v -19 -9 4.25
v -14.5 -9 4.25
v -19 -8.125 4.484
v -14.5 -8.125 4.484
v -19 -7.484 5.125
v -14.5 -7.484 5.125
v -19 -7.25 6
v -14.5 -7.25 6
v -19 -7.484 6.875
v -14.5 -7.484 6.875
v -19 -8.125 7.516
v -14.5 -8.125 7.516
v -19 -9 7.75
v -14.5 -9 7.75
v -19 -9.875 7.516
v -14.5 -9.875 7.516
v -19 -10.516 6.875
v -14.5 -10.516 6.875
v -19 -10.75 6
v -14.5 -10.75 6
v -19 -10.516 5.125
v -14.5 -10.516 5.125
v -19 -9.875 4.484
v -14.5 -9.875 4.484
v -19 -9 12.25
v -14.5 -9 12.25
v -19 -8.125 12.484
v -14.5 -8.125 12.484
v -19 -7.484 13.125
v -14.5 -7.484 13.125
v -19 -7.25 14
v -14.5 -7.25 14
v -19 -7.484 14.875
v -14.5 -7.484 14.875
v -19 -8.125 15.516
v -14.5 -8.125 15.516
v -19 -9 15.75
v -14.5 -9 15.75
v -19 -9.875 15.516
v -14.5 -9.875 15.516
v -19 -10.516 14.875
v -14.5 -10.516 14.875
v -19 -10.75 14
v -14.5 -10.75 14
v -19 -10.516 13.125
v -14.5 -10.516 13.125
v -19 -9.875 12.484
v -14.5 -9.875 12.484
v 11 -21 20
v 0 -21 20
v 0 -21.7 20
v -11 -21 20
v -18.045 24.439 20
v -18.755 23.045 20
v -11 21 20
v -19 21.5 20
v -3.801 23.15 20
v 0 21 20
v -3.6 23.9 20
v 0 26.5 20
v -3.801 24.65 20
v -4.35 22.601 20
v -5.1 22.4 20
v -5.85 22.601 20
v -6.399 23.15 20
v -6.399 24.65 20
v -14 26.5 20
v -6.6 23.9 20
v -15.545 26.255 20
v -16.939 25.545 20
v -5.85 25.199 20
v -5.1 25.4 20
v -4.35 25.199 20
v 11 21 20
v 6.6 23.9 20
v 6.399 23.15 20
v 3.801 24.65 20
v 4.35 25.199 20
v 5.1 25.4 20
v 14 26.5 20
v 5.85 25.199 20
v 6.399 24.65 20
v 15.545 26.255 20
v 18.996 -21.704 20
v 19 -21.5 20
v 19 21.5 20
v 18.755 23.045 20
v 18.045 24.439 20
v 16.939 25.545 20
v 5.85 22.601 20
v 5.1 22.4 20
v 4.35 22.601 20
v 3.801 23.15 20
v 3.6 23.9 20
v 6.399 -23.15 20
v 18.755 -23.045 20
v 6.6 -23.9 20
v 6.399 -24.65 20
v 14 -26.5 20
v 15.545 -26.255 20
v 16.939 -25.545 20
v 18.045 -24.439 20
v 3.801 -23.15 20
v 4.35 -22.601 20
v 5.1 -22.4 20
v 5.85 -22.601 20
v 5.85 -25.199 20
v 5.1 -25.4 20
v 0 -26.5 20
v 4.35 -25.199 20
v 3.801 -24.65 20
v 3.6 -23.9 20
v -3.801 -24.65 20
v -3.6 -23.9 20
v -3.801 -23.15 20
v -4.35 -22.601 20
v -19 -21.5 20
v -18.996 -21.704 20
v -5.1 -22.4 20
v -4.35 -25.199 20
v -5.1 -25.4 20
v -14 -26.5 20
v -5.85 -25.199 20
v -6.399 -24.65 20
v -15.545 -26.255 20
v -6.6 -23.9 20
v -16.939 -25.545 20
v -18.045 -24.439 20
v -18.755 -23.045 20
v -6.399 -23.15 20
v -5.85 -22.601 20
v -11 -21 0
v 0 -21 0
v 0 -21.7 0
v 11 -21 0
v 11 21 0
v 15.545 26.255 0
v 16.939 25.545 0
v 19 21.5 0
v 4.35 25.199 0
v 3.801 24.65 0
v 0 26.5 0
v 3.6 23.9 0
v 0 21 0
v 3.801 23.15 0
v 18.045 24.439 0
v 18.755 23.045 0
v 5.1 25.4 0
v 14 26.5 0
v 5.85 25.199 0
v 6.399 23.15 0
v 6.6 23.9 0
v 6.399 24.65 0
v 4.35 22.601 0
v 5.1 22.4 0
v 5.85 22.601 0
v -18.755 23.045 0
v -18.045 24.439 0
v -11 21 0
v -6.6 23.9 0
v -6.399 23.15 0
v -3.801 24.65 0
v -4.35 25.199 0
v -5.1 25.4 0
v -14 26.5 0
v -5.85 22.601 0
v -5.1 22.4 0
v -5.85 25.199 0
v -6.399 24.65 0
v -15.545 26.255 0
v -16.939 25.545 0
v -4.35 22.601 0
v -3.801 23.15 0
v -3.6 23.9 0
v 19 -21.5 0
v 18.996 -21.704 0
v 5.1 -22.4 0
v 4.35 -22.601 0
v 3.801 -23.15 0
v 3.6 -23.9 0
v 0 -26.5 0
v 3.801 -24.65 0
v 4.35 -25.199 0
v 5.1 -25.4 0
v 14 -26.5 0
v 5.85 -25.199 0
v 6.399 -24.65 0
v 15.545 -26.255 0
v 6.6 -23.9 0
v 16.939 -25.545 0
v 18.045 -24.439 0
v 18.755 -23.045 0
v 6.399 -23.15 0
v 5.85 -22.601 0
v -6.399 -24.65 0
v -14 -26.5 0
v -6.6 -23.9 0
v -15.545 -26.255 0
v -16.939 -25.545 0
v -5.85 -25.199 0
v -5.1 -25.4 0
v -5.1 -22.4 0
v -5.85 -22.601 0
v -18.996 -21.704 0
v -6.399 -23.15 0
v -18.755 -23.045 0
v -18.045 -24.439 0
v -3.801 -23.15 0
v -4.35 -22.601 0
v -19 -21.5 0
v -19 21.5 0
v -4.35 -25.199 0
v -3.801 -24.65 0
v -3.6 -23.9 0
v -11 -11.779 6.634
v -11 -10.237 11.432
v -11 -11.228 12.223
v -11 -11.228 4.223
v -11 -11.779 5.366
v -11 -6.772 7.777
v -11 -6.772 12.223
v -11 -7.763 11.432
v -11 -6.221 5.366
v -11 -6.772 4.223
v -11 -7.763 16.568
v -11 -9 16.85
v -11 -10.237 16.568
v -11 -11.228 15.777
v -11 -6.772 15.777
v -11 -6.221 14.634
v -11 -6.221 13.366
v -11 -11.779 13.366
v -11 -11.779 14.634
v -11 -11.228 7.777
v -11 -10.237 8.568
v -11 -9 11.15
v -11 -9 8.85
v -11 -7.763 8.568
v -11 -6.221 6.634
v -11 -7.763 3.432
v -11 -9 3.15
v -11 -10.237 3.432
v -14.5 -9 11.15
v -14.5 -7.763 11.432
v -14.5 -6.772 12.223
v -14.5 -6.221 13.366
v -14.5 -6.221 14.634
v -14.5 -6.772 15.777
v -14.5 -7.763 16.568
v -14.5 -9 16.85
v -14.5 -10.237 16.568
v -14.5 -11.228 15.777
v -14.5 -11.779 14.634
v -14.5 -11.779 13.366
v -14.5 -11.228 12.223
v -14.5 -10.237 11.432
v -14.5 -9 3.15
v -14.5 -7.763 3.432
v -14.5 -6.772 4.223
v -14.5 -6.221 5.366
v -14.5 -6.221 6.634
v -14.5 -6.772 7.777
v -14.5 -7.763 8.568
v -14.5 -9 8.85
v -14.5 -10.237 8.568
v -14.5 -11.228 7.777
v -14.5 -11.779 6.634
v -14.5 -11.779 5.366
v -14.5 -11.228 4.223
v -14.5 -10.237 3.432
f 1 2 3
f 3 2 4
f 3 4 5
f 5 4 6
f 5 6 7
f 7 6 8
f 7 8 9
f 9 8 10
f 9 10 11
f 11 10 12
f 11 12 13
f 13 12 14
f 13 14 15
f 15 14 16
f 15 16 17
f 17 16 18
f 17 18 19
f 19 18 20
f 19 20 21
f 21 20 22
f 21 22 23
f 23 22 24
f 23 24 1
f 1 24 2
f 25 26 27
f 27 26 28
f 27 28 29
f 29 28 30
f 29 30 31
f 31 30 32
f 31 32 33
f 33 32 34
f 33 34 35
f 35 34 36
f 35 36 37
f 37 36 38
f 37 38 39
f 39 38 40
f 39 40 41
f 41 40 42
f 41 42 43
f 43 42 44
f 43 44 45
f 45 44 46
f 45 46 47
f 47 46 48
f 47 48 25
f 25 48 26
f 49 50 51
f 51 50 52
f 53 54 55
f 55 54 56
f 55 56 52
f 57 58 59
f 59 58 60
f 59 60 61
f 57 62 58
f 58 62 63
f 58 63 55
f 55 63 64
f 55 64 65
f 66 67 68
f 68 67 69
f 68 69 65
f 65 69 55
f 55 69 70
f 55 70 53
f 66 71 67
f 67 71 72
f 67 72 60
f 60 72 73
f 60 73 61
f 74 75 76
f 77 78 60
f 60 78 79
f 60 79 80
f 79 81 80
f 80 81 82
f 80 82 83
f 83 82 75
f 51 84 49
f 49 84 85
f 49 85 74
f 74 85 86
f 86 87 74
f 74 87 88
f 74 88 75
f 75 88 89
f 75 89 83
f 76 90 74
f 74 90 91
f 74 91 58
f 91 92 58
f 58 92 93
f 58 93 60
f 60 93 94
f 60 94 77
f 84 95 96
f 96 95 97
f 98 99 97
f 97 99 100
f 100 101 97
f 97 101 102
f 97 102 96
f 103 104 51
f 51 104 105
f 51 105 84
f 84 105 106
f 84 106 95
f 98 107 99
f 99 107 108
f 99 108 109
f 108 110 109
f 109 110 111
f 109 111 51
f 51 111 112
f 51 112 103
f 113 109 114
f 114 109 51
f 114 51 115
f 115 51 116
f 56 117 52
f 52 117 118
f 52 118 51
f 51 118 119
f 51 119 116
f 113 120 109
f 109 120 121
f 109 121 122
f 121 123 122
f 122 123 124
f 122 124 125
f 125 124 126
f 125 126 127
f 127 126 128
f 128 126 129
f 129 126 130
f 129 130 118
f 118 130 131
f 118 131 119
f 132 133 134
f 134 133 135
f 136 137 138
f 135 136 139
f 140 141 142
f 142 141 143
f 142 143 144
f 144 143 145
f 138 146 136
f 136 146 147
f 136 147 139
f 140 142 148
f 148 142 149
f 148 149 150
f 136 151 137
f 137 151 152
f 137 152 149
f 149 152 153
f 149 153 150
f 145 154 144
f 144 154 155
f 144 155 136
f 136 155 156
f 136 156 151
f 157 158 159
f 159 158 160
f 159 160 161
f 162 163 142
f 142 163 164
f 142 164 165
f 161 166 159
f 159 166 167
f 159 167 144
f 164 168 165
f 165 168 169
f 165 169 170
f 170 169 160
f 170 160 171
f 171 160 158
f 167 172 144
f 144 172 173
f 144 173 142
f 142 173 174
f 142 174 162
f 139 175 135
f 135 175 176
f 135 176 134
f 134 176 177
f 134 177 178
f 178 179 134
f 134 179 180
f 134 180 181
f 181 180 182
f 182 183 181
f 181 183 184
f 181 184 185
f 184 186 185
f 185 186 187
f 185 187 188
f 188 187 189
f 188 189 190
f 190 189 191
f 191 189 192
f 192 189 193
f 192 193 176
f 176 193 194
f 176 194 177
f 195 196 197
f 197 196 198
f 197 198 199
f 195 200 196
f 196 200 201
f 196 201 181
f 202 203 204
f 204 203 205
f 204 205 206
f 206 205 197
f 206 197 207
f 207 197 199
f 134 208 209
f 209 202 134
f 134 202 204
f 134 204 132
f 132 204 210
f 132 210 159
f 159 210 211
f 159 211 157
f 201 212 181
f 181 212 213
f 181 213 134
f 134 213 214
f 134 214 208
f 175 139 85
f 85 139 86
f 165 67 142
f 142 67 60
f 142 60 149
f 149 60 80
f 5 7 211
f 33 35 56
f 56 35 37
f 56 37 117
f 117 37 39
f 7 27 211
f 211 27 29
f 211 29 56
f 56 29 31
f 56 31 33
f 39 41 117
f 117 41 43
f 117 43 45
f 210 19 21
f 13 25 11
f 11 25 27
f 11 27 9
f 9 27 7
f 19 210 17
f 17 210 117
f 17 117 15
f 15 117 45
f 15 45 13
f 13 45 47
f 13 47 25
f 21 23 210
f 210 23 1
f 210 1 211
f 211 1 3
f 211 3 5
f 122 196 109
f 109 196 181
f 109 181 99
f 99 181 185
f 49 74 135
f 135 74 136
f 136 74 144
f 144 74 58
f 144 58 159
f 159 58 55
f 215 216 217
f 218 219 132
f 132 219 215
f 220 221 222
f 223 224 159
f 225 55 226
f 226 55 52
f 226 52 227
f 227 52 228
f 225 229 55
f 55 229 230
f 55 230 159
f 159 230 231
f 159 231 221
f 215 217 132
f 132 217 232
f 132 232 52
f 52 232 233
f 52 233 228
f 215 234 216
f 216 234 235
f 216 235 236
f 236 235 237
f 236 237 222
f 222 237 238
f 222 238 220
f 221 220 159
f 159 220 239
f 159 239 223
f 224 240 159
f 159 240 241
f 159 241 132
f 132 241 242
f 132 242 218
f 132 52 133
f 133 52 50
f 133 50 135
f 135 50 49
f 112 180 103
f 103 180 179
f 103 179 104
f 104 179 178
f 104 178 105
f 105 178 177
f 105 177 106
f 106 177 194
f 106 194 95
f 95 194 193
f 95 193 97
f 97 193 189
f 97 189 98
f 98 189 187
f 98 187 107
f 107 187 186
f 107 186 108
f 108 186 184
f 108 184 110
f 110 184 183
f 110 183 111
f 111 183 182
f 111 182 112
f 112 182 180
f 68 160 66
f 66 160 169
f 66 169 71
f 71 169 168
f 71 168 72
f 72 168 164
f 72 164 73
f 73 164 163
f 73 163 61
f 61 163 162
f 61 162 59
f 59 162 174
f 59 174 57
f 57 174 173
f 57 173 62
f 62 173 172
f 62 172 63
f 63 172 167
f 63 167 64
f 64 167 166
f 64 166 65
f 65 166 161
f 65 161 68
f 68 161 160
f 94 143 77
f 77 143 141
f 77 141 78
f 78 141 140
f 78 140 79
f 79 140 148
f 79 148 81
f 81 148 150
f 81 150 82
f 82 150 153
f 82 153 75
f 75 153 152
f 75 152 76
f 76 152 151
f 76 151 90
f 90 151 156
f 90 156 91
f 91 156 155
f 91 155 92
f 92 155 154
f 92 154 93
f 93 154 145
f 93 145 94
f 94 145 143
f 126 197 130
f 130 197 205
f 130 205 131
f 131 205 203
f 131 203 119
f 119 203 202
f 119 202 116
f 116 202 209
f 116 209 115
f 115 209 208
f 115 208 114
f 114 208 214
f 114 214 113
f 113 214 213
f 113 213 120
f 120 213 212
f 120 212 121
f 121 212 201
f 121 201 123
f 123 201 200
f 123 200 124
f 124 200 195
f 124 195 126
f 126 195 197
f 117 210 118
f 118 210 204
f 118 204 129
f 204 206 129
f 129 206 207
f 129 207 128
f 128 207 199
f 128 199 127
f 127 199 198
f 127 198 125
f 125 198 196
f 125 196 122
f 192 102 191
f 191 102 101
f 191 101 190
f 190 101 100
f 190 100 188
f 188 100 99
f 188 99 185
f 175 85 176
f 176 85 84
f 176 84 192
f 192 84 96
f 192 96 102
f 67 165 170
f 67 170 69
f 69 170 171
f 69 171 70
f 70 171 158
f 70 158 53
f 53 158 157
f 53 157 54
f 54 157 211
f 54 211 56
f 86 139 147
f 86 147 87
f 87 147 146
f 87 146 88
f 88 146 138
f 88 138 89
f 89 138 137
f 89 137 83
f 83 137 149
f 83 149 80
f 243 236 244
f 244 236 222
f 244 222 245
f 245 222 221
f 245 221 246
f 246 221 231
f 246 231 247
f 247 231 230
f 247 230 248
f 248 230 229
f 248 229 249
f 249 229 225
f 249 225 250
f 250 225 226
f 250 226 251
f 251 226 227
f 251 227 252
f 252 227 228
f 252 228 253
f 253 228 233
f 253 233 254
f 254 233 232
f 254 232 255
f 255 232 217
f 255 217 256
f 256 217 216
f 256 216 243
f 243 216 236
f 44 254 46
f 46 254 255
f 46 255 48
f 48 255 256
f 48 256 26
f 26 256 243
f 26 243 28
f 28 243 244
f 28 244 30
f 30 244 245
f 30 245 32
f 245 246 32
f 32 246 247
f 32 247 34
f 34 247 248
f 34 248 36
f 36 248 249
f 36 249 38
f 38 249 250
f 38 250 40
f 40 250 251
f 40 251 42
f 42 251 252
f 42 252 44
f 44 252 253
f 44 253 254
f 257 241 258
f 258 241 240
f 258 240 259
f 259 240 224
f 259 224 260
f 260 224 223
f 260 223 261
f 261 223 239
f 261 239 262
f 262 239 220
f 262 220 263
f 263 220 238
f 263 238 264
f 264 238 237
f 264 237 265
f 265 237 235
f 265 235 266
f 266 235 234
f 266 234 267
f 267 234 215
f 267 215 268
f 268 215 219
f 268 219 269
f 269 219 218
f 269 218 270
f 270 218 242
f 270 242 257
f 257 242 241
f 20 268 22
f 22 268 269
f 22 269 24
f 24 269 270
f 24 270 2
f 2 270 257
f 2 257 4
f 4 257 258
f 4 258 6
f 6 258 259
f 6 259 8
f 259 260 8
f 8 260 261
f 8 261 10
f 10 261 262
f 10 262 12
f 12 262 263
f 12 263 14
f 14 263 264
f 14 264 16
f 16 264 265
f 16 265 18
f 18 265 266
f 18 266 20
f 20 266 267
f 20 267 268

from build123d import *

# Parameters (mm, degrees)
SKETCH1_W           = 38
SKETCH1_H           = 53
SKETCH1_W_2         = 22
SKETCH1_H_2         = 42
BOSS_EXTRUDE1_DEPTH = 20
SKETCH4_R           = 1.5
CUT_EXTRUDE3_DEPTH  = 39.252450902
FILLET1_R           = 5
SKETCH5_R           = 1.75
CUT_EXTRUDE4_DEPTH  = 45.746508244
SKETCH5_3_R         = 2.85
SKETCH5_3_R_2       = 1.75
CUT_EXTRUDE5_DEPTH  = 3.5


with BuildPart() as part:
    # Sketch1 → Boss-Extrude1 (new body)
    with BuildSketch(Plane.XY):
        Rectangle(SKETCH1_W, SKETCH1_H)
        Rectangle(SKETCH1_W_2, SKETCH1_H_2, mode=Mode.SUBTRACT)
    extrude(amount=BOSS_EXTRUDE1_DEPTH)

    # Sketch4 → Cut-Extrude3 (cut, through all)
    with BuildSketch(Plane(origin=(0, 0, 0), x_dir=(-1, 0, 0), z_dir=(0, 0, -1))):
        with Locations((-5.1, -23.9)):
            Circle(SKETCH4_R)
        with Locations((5.1, -23.9)):
            Circle(SKETCH4_R)
        with Locations((-5.1, 23.9)):
            Circle(SKETCH4_R)
        with Locations((5.1, 23.9)):
            Circle(SKETCH4_R)
    extrude(amount=-CUT_EXTRUDE3_DEPTH, mode=Mode.SUBTRACT)

    # Fillet1
    fillet1_edges = [part.edges().sort_by_distance(p)[0] for p in [
        (19, -26.5, 10),
        (-19, -26.5, 10),
        (-19, 26.5, 10),
        (19, 26.5, 10),
    ]]
    fillet(fillet1_edges, radius=FILLET1_R)

    # Sketch5 → Cut-Extrude4 (cut, through all)
    with BuildSketch(Plane(origin=(-11, 0, 0), x_dir=(0, 0, -1), z_dir=(1, 0, 0))):
        with Locations((-14, -9)):
            Circle(SKETCH5_R)
        with Locations((-6, -9)):
            Circle(SKETCH5_R)
    extrude(amount=-CUT_EXTRUDE4_DEPTH, mode=Mode.SUBTRACT)

    # Sketch5<3> → Cut-Extrude5 (cut)
    # profile 1 of 2: a face of its own
    with BuildSketch(Plane(origin=(-11, 0, 0), x_dir=(0, 0, -1), z_dir=(1, 0, 0))):
        with Locations((-14, -9)):
            Circle(SKETCH5_3_R)
        with Locations((-14, -9)):
            Circle(SKETCH5_3_R_2, mode=Mode.SUBTRACT)
    # profile 2 of 2: a face of its own
    with BuildSketch(Plane(origin=(-11, 0, 0), x_dir=(0, 0, -1), z_dir=(1, 0, 0))):
        with Locations((-6, -9)):
            Circle(SKETCH5_3_R)
        with Locations((-6, -9)):
            Circle(SKETCH5_3_R_2, mode=Mode.SUBTRACT)
    extrude(amount=-CUT_EXTRUDE5_DEPTH, mode=Mode.SUBTRACT)


solid = part.part
